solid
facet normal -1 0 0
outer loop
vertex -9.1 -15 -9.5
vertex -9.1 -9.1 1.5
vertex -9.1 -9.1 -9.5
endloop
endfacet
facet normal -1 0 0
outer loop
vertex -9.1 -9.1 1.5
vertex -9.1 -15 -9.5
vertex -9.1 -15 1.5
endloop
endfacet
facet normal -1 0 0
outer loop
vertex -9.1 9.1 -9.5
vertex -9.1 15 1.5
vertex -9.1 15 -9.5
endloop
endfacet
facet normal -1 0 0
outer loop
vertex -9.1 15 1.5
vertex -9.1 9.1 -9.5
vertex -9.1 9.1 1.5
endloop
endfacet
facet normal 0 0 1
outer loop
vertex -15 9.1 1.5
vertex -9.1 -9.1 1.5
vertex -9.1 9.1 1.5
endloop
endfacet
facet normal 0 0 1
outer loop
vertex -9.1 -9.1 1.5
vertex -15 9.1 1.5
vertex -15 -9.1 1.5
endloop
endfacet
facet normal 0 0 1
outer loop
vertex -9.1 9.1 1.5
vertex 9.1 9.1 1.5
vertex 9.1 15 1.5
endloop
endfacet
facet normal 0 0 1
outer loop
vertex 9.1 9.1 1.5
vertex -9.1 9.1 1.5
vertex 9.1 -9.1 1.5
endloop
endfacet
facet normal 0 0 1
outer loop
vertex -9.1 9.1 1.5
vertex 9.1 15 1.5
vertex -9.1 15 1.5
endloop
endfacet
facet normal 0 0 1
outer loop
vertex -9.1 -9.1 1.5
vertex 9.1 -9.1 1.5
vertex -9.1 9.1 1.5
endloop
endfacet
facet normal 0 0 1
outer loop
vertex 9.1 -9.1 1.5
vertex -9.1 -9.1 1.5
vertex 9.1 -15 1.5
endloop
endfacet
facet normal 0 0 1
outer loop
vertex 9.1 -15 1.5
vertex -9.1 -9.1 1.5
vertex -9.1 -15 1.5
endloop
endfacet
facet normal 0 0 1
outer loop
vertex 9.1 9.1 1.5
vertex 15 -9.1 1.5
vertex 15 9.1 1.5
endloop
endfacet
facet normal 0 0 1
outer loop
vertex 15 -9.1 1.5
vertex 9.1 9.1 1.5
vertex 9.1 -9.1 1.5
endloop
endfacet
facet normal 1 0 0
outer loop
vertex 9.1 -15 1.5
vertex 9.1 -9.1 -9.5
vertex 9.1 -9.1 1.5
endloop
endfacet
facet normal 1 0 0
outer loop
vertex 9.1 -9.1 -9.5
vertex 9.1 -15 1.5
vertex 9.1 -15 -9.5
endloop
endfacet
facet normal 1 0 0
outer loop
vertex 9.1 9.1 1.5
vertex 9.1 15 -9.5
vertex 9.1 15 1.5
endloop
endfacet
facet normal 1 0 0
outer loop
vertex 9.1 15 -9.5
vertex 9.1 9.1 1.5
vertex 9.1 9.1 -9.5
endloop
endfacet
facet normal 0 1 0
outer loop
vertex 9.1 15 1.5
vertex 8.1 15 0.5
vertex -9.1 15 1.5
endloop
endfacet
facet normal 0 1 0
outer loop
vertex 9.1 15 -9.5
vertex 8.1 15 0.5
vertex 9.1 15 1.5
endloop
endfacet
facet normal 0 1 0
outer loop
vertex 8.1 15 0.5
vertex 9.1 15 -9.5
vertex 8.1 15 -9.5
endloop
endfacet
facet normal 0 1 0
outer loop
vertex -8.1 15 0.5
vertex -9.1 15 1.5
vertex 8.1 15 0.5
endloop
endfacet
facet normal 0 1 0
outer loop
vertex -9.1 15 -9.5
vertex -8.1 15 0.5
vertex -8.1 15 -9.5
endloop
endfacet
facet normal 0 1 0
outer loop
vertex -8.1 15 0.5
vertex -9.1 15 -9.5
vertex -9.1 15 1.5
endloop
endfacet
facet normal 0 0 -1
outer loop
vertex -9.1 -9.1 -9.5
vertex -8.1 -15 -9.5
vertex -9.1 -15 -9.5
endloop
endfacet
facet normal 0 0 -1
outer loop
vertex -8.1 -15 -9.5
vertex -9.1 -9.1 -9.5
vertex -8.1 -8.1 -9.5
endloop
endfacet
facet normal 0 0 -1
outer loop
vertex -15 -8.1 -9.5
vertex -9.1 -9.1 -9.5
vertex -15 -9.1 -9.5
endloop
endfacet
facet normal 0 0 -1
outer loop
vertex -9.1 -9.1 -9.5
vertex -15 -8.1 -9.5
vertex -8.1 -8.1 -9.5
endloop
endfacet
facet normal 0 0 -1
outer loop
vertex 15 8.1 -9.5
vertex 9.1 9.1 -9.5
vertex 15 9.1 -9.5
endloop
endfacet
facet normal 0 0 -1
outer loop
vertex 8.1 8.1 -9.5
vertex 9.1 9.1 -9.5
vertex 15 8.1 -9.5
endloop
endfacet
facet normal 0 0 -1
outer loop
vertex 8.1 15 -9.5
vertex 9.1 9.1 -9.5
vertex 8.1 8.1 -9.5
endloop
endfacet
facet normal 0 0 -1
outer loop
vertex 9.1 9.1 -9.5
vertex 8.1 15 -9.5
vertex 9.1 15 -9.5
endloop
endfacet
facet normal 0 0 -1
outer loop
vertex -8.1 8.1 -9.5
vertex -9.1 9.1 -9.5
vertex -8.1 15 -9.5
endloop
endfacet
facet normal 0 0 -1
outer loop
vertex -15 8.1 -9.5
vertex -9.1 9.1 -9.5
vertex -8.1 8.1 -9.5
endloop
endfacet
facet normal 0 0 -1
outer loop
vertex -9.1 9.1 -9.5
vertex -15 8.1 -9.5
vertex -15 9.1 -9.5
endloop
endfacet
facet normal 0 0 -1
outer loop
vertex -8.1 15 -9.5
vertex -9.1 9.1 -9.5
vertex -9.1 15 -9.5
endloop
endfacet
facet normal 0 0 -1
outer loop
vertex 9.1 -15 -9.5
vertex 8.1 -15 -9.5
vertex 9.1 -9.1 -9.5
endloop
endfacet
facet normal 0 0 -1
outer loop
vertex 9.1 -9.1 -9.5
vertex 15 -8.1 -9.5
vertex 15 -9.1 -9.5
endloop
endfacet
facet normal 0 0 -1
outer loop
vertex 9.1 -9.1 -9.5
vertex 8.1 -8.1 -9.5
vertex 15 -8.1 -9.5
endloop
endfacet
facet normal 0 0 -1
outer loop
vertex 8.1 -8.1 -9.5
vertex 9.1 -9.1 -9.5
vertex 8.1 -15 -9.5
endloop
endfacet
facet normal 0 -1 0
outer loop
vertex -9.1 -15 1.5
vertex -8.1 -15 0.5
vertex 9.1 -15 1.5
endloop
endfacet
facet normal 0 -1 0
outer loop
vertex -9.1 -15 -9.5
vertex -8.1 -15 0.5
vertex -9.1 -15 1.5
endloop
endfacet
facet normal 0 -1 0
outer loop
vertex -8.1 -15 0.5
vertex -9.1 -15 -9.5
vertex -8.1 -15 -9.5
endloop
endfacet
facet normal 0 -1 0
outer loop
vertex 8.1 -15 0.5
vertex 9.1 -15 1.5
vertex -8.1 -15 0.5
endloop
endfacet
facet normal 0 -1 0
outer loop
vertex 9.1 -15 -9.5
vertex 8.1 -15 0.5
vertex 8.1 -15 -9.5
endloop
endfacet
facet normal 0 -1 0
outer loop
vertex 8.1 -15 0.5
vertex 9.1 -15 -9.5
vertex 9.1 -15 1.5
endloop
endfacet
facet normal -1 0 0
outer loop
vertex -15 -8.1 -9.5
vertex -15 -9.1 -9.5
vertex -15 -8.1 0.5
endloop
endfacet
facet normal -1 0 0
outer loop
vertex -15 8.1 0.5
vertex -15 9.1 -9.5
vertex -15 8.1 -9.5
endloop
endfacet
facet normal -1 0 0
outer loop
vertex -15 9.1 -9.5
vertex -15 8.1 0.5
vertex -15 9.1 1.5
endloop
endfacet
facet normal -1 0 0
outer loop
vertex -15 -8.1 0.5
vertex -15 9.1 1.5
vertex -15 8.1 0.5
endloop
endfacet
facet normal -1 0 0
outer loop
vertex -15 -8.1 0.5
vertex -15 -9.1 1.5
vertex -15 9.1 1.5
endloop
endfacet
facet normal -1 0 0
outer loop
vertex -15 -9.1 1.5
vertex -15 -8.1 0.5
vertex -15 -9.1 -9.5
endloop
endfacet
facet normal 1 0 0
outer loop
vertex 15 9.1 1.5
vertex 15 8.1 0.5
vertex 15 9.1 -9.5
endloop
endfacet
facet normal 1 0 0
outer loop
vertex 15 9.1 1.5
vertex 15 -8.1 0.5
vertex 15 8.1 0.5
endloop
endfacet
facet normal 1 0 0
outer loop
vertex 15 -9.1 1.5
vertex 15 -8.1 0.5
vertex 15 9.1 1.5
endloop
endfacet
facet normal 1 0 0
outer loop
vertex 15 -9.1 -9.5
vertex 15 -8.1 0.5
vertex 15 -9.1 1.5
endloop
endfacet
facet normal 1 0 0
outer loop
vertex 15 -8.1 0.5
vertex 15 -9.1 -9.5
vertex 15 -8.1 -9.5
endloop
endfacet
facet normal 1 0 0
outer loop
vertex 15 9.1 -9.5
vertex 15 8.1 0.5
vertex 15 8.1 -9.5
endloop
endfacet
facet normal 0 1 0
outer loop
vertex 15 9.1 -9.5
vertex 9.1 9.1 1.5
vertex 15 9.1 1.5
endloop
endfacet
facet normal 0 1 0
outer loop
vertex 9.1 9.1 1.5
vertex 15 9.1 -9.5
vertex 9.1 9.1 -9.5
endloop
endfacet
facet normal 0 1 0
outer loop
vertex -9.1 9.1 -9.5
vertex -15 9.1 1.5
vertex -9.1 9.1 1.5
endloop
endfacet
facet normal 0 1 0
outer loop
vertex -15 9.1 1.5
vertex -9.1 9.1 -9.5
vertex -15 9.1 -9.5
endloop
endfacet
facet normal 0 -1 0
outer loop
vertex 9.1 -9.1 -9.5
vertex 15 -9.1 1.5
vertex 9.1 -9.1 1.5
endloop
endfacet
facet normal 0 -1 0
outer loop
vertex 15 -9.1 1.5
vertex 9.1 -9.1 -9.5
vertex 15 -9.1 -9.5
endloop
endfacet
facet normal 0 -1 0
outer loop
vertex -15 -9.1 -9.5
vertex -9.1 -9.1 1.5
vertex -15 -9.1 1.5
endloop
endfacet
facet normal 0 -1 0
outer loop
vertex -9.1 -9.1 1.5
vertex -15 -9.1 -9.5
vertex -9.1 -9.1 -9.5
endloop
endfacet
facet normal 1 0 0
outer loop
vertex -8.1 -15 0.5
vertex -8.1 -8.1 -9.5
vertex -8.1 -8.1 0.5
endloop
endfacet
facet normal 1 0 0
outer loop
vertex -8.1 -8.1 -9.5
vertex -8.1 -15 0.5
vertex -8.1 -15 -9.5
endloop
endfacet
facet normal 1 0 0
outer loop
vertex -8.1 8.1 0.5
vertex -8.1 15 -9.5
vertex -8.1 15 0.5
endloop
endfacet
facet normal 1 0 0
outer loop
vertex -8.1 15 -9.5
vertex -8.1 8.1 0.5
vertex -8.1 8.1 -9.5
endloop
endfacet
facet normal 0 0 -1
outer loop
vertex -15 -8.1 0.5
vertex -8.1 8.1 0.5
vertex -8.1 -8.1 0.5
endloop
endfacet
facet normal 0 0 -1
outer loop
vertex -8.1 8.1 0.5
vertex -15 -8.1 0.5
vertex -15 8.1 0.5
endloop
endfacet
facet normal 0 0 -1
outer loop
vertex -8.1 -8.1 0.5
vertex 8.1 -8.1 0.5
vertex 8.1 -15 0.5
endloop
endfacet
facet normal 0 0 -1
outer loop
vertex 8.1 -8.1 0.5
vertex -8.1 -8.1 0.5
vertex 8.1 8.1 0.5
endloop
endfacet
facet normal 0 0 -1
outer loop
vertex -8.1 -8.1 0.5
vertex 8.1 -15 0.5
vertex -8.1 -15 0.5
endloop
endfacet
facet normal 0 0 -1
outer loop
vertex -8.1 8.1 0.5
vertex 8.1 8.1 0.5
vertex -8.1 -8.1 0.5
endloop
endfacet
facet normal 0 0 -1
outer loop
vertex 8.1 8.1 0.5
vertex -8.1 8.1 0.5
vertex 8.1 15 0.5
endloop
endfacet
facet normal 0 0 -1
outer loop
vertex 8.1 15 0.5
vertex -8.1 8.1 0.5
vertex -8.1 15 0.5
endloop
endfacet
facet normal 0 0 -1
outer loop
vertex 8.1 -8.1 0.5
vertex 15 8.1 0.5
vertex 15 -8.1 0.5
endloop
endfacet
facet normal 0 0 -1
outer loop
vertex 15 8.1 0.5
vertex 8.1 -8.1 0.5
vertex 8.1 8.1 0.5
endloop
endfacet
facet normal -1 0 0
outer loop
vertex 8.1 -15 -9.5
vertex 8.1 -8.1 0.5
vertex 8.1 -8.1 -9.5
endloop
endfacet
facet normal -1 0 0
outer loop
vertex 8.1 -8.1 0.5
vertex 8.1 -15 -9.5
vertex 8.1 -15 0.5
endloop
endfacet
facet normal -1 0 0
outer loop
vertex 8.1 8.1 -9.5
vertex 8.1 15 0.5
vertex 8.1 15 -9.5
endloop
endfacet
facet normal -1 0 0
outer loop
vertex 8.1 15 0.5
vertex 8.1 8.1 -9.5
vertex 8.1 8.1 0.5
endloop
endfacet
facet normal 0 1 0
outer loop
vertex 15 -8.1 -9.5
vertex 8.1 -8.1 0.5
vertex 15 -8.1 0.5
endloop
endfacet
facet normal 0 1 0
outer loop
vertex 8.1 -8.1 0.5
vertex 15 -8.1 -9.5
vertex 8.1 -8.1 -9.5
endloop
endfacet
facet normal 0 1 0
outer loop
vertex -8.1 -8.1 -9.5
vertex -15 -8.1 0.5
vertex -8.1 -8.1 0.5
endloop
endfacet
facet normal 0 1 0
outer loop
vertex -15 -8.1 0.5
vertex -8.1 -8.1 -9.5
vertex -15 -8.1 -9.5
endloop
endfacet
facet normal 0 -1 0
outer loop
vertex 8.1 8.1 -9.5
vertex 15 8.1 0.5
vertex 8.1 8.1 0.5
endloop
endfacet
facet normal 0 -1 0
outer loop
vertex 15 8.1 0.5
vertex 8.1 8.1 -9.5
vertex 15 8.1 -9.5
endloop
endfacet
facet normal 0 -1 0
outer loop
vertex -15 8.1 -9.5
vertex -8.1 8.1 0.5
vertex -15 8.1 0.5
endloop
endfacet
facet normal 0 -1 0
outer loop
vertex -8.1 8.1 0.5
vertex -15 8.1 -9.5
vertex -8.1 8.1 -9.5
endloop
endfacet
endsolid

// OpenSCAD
$tolerence = 0.2;

module cross (a, b, c, depth){
    
    // vertical
    cube([a, c, depth], center=true);

    // horizontal
    cube([c, b, depth], center=true);
}


$wall_thickness = 1;
$depth_thickness = 10;

difference(){
    
    // initial cross
    translate([0, 0, -$depth_thickness/2 + $wall_thickness])
    cross(a=16.2 + 2*$wall_thickness, b=16.2 + 2*$wall_thickness, c=30, depth= $depth_thickness + $wall_thickness);
    
    // cross used to cut away from initial cross
    translate([0, 0, -$depth_thickness/2])
    cross(a=16.2, b=16.2, c=30, depth=$depth_thickness + $wall_thickness);
}

//16.2
